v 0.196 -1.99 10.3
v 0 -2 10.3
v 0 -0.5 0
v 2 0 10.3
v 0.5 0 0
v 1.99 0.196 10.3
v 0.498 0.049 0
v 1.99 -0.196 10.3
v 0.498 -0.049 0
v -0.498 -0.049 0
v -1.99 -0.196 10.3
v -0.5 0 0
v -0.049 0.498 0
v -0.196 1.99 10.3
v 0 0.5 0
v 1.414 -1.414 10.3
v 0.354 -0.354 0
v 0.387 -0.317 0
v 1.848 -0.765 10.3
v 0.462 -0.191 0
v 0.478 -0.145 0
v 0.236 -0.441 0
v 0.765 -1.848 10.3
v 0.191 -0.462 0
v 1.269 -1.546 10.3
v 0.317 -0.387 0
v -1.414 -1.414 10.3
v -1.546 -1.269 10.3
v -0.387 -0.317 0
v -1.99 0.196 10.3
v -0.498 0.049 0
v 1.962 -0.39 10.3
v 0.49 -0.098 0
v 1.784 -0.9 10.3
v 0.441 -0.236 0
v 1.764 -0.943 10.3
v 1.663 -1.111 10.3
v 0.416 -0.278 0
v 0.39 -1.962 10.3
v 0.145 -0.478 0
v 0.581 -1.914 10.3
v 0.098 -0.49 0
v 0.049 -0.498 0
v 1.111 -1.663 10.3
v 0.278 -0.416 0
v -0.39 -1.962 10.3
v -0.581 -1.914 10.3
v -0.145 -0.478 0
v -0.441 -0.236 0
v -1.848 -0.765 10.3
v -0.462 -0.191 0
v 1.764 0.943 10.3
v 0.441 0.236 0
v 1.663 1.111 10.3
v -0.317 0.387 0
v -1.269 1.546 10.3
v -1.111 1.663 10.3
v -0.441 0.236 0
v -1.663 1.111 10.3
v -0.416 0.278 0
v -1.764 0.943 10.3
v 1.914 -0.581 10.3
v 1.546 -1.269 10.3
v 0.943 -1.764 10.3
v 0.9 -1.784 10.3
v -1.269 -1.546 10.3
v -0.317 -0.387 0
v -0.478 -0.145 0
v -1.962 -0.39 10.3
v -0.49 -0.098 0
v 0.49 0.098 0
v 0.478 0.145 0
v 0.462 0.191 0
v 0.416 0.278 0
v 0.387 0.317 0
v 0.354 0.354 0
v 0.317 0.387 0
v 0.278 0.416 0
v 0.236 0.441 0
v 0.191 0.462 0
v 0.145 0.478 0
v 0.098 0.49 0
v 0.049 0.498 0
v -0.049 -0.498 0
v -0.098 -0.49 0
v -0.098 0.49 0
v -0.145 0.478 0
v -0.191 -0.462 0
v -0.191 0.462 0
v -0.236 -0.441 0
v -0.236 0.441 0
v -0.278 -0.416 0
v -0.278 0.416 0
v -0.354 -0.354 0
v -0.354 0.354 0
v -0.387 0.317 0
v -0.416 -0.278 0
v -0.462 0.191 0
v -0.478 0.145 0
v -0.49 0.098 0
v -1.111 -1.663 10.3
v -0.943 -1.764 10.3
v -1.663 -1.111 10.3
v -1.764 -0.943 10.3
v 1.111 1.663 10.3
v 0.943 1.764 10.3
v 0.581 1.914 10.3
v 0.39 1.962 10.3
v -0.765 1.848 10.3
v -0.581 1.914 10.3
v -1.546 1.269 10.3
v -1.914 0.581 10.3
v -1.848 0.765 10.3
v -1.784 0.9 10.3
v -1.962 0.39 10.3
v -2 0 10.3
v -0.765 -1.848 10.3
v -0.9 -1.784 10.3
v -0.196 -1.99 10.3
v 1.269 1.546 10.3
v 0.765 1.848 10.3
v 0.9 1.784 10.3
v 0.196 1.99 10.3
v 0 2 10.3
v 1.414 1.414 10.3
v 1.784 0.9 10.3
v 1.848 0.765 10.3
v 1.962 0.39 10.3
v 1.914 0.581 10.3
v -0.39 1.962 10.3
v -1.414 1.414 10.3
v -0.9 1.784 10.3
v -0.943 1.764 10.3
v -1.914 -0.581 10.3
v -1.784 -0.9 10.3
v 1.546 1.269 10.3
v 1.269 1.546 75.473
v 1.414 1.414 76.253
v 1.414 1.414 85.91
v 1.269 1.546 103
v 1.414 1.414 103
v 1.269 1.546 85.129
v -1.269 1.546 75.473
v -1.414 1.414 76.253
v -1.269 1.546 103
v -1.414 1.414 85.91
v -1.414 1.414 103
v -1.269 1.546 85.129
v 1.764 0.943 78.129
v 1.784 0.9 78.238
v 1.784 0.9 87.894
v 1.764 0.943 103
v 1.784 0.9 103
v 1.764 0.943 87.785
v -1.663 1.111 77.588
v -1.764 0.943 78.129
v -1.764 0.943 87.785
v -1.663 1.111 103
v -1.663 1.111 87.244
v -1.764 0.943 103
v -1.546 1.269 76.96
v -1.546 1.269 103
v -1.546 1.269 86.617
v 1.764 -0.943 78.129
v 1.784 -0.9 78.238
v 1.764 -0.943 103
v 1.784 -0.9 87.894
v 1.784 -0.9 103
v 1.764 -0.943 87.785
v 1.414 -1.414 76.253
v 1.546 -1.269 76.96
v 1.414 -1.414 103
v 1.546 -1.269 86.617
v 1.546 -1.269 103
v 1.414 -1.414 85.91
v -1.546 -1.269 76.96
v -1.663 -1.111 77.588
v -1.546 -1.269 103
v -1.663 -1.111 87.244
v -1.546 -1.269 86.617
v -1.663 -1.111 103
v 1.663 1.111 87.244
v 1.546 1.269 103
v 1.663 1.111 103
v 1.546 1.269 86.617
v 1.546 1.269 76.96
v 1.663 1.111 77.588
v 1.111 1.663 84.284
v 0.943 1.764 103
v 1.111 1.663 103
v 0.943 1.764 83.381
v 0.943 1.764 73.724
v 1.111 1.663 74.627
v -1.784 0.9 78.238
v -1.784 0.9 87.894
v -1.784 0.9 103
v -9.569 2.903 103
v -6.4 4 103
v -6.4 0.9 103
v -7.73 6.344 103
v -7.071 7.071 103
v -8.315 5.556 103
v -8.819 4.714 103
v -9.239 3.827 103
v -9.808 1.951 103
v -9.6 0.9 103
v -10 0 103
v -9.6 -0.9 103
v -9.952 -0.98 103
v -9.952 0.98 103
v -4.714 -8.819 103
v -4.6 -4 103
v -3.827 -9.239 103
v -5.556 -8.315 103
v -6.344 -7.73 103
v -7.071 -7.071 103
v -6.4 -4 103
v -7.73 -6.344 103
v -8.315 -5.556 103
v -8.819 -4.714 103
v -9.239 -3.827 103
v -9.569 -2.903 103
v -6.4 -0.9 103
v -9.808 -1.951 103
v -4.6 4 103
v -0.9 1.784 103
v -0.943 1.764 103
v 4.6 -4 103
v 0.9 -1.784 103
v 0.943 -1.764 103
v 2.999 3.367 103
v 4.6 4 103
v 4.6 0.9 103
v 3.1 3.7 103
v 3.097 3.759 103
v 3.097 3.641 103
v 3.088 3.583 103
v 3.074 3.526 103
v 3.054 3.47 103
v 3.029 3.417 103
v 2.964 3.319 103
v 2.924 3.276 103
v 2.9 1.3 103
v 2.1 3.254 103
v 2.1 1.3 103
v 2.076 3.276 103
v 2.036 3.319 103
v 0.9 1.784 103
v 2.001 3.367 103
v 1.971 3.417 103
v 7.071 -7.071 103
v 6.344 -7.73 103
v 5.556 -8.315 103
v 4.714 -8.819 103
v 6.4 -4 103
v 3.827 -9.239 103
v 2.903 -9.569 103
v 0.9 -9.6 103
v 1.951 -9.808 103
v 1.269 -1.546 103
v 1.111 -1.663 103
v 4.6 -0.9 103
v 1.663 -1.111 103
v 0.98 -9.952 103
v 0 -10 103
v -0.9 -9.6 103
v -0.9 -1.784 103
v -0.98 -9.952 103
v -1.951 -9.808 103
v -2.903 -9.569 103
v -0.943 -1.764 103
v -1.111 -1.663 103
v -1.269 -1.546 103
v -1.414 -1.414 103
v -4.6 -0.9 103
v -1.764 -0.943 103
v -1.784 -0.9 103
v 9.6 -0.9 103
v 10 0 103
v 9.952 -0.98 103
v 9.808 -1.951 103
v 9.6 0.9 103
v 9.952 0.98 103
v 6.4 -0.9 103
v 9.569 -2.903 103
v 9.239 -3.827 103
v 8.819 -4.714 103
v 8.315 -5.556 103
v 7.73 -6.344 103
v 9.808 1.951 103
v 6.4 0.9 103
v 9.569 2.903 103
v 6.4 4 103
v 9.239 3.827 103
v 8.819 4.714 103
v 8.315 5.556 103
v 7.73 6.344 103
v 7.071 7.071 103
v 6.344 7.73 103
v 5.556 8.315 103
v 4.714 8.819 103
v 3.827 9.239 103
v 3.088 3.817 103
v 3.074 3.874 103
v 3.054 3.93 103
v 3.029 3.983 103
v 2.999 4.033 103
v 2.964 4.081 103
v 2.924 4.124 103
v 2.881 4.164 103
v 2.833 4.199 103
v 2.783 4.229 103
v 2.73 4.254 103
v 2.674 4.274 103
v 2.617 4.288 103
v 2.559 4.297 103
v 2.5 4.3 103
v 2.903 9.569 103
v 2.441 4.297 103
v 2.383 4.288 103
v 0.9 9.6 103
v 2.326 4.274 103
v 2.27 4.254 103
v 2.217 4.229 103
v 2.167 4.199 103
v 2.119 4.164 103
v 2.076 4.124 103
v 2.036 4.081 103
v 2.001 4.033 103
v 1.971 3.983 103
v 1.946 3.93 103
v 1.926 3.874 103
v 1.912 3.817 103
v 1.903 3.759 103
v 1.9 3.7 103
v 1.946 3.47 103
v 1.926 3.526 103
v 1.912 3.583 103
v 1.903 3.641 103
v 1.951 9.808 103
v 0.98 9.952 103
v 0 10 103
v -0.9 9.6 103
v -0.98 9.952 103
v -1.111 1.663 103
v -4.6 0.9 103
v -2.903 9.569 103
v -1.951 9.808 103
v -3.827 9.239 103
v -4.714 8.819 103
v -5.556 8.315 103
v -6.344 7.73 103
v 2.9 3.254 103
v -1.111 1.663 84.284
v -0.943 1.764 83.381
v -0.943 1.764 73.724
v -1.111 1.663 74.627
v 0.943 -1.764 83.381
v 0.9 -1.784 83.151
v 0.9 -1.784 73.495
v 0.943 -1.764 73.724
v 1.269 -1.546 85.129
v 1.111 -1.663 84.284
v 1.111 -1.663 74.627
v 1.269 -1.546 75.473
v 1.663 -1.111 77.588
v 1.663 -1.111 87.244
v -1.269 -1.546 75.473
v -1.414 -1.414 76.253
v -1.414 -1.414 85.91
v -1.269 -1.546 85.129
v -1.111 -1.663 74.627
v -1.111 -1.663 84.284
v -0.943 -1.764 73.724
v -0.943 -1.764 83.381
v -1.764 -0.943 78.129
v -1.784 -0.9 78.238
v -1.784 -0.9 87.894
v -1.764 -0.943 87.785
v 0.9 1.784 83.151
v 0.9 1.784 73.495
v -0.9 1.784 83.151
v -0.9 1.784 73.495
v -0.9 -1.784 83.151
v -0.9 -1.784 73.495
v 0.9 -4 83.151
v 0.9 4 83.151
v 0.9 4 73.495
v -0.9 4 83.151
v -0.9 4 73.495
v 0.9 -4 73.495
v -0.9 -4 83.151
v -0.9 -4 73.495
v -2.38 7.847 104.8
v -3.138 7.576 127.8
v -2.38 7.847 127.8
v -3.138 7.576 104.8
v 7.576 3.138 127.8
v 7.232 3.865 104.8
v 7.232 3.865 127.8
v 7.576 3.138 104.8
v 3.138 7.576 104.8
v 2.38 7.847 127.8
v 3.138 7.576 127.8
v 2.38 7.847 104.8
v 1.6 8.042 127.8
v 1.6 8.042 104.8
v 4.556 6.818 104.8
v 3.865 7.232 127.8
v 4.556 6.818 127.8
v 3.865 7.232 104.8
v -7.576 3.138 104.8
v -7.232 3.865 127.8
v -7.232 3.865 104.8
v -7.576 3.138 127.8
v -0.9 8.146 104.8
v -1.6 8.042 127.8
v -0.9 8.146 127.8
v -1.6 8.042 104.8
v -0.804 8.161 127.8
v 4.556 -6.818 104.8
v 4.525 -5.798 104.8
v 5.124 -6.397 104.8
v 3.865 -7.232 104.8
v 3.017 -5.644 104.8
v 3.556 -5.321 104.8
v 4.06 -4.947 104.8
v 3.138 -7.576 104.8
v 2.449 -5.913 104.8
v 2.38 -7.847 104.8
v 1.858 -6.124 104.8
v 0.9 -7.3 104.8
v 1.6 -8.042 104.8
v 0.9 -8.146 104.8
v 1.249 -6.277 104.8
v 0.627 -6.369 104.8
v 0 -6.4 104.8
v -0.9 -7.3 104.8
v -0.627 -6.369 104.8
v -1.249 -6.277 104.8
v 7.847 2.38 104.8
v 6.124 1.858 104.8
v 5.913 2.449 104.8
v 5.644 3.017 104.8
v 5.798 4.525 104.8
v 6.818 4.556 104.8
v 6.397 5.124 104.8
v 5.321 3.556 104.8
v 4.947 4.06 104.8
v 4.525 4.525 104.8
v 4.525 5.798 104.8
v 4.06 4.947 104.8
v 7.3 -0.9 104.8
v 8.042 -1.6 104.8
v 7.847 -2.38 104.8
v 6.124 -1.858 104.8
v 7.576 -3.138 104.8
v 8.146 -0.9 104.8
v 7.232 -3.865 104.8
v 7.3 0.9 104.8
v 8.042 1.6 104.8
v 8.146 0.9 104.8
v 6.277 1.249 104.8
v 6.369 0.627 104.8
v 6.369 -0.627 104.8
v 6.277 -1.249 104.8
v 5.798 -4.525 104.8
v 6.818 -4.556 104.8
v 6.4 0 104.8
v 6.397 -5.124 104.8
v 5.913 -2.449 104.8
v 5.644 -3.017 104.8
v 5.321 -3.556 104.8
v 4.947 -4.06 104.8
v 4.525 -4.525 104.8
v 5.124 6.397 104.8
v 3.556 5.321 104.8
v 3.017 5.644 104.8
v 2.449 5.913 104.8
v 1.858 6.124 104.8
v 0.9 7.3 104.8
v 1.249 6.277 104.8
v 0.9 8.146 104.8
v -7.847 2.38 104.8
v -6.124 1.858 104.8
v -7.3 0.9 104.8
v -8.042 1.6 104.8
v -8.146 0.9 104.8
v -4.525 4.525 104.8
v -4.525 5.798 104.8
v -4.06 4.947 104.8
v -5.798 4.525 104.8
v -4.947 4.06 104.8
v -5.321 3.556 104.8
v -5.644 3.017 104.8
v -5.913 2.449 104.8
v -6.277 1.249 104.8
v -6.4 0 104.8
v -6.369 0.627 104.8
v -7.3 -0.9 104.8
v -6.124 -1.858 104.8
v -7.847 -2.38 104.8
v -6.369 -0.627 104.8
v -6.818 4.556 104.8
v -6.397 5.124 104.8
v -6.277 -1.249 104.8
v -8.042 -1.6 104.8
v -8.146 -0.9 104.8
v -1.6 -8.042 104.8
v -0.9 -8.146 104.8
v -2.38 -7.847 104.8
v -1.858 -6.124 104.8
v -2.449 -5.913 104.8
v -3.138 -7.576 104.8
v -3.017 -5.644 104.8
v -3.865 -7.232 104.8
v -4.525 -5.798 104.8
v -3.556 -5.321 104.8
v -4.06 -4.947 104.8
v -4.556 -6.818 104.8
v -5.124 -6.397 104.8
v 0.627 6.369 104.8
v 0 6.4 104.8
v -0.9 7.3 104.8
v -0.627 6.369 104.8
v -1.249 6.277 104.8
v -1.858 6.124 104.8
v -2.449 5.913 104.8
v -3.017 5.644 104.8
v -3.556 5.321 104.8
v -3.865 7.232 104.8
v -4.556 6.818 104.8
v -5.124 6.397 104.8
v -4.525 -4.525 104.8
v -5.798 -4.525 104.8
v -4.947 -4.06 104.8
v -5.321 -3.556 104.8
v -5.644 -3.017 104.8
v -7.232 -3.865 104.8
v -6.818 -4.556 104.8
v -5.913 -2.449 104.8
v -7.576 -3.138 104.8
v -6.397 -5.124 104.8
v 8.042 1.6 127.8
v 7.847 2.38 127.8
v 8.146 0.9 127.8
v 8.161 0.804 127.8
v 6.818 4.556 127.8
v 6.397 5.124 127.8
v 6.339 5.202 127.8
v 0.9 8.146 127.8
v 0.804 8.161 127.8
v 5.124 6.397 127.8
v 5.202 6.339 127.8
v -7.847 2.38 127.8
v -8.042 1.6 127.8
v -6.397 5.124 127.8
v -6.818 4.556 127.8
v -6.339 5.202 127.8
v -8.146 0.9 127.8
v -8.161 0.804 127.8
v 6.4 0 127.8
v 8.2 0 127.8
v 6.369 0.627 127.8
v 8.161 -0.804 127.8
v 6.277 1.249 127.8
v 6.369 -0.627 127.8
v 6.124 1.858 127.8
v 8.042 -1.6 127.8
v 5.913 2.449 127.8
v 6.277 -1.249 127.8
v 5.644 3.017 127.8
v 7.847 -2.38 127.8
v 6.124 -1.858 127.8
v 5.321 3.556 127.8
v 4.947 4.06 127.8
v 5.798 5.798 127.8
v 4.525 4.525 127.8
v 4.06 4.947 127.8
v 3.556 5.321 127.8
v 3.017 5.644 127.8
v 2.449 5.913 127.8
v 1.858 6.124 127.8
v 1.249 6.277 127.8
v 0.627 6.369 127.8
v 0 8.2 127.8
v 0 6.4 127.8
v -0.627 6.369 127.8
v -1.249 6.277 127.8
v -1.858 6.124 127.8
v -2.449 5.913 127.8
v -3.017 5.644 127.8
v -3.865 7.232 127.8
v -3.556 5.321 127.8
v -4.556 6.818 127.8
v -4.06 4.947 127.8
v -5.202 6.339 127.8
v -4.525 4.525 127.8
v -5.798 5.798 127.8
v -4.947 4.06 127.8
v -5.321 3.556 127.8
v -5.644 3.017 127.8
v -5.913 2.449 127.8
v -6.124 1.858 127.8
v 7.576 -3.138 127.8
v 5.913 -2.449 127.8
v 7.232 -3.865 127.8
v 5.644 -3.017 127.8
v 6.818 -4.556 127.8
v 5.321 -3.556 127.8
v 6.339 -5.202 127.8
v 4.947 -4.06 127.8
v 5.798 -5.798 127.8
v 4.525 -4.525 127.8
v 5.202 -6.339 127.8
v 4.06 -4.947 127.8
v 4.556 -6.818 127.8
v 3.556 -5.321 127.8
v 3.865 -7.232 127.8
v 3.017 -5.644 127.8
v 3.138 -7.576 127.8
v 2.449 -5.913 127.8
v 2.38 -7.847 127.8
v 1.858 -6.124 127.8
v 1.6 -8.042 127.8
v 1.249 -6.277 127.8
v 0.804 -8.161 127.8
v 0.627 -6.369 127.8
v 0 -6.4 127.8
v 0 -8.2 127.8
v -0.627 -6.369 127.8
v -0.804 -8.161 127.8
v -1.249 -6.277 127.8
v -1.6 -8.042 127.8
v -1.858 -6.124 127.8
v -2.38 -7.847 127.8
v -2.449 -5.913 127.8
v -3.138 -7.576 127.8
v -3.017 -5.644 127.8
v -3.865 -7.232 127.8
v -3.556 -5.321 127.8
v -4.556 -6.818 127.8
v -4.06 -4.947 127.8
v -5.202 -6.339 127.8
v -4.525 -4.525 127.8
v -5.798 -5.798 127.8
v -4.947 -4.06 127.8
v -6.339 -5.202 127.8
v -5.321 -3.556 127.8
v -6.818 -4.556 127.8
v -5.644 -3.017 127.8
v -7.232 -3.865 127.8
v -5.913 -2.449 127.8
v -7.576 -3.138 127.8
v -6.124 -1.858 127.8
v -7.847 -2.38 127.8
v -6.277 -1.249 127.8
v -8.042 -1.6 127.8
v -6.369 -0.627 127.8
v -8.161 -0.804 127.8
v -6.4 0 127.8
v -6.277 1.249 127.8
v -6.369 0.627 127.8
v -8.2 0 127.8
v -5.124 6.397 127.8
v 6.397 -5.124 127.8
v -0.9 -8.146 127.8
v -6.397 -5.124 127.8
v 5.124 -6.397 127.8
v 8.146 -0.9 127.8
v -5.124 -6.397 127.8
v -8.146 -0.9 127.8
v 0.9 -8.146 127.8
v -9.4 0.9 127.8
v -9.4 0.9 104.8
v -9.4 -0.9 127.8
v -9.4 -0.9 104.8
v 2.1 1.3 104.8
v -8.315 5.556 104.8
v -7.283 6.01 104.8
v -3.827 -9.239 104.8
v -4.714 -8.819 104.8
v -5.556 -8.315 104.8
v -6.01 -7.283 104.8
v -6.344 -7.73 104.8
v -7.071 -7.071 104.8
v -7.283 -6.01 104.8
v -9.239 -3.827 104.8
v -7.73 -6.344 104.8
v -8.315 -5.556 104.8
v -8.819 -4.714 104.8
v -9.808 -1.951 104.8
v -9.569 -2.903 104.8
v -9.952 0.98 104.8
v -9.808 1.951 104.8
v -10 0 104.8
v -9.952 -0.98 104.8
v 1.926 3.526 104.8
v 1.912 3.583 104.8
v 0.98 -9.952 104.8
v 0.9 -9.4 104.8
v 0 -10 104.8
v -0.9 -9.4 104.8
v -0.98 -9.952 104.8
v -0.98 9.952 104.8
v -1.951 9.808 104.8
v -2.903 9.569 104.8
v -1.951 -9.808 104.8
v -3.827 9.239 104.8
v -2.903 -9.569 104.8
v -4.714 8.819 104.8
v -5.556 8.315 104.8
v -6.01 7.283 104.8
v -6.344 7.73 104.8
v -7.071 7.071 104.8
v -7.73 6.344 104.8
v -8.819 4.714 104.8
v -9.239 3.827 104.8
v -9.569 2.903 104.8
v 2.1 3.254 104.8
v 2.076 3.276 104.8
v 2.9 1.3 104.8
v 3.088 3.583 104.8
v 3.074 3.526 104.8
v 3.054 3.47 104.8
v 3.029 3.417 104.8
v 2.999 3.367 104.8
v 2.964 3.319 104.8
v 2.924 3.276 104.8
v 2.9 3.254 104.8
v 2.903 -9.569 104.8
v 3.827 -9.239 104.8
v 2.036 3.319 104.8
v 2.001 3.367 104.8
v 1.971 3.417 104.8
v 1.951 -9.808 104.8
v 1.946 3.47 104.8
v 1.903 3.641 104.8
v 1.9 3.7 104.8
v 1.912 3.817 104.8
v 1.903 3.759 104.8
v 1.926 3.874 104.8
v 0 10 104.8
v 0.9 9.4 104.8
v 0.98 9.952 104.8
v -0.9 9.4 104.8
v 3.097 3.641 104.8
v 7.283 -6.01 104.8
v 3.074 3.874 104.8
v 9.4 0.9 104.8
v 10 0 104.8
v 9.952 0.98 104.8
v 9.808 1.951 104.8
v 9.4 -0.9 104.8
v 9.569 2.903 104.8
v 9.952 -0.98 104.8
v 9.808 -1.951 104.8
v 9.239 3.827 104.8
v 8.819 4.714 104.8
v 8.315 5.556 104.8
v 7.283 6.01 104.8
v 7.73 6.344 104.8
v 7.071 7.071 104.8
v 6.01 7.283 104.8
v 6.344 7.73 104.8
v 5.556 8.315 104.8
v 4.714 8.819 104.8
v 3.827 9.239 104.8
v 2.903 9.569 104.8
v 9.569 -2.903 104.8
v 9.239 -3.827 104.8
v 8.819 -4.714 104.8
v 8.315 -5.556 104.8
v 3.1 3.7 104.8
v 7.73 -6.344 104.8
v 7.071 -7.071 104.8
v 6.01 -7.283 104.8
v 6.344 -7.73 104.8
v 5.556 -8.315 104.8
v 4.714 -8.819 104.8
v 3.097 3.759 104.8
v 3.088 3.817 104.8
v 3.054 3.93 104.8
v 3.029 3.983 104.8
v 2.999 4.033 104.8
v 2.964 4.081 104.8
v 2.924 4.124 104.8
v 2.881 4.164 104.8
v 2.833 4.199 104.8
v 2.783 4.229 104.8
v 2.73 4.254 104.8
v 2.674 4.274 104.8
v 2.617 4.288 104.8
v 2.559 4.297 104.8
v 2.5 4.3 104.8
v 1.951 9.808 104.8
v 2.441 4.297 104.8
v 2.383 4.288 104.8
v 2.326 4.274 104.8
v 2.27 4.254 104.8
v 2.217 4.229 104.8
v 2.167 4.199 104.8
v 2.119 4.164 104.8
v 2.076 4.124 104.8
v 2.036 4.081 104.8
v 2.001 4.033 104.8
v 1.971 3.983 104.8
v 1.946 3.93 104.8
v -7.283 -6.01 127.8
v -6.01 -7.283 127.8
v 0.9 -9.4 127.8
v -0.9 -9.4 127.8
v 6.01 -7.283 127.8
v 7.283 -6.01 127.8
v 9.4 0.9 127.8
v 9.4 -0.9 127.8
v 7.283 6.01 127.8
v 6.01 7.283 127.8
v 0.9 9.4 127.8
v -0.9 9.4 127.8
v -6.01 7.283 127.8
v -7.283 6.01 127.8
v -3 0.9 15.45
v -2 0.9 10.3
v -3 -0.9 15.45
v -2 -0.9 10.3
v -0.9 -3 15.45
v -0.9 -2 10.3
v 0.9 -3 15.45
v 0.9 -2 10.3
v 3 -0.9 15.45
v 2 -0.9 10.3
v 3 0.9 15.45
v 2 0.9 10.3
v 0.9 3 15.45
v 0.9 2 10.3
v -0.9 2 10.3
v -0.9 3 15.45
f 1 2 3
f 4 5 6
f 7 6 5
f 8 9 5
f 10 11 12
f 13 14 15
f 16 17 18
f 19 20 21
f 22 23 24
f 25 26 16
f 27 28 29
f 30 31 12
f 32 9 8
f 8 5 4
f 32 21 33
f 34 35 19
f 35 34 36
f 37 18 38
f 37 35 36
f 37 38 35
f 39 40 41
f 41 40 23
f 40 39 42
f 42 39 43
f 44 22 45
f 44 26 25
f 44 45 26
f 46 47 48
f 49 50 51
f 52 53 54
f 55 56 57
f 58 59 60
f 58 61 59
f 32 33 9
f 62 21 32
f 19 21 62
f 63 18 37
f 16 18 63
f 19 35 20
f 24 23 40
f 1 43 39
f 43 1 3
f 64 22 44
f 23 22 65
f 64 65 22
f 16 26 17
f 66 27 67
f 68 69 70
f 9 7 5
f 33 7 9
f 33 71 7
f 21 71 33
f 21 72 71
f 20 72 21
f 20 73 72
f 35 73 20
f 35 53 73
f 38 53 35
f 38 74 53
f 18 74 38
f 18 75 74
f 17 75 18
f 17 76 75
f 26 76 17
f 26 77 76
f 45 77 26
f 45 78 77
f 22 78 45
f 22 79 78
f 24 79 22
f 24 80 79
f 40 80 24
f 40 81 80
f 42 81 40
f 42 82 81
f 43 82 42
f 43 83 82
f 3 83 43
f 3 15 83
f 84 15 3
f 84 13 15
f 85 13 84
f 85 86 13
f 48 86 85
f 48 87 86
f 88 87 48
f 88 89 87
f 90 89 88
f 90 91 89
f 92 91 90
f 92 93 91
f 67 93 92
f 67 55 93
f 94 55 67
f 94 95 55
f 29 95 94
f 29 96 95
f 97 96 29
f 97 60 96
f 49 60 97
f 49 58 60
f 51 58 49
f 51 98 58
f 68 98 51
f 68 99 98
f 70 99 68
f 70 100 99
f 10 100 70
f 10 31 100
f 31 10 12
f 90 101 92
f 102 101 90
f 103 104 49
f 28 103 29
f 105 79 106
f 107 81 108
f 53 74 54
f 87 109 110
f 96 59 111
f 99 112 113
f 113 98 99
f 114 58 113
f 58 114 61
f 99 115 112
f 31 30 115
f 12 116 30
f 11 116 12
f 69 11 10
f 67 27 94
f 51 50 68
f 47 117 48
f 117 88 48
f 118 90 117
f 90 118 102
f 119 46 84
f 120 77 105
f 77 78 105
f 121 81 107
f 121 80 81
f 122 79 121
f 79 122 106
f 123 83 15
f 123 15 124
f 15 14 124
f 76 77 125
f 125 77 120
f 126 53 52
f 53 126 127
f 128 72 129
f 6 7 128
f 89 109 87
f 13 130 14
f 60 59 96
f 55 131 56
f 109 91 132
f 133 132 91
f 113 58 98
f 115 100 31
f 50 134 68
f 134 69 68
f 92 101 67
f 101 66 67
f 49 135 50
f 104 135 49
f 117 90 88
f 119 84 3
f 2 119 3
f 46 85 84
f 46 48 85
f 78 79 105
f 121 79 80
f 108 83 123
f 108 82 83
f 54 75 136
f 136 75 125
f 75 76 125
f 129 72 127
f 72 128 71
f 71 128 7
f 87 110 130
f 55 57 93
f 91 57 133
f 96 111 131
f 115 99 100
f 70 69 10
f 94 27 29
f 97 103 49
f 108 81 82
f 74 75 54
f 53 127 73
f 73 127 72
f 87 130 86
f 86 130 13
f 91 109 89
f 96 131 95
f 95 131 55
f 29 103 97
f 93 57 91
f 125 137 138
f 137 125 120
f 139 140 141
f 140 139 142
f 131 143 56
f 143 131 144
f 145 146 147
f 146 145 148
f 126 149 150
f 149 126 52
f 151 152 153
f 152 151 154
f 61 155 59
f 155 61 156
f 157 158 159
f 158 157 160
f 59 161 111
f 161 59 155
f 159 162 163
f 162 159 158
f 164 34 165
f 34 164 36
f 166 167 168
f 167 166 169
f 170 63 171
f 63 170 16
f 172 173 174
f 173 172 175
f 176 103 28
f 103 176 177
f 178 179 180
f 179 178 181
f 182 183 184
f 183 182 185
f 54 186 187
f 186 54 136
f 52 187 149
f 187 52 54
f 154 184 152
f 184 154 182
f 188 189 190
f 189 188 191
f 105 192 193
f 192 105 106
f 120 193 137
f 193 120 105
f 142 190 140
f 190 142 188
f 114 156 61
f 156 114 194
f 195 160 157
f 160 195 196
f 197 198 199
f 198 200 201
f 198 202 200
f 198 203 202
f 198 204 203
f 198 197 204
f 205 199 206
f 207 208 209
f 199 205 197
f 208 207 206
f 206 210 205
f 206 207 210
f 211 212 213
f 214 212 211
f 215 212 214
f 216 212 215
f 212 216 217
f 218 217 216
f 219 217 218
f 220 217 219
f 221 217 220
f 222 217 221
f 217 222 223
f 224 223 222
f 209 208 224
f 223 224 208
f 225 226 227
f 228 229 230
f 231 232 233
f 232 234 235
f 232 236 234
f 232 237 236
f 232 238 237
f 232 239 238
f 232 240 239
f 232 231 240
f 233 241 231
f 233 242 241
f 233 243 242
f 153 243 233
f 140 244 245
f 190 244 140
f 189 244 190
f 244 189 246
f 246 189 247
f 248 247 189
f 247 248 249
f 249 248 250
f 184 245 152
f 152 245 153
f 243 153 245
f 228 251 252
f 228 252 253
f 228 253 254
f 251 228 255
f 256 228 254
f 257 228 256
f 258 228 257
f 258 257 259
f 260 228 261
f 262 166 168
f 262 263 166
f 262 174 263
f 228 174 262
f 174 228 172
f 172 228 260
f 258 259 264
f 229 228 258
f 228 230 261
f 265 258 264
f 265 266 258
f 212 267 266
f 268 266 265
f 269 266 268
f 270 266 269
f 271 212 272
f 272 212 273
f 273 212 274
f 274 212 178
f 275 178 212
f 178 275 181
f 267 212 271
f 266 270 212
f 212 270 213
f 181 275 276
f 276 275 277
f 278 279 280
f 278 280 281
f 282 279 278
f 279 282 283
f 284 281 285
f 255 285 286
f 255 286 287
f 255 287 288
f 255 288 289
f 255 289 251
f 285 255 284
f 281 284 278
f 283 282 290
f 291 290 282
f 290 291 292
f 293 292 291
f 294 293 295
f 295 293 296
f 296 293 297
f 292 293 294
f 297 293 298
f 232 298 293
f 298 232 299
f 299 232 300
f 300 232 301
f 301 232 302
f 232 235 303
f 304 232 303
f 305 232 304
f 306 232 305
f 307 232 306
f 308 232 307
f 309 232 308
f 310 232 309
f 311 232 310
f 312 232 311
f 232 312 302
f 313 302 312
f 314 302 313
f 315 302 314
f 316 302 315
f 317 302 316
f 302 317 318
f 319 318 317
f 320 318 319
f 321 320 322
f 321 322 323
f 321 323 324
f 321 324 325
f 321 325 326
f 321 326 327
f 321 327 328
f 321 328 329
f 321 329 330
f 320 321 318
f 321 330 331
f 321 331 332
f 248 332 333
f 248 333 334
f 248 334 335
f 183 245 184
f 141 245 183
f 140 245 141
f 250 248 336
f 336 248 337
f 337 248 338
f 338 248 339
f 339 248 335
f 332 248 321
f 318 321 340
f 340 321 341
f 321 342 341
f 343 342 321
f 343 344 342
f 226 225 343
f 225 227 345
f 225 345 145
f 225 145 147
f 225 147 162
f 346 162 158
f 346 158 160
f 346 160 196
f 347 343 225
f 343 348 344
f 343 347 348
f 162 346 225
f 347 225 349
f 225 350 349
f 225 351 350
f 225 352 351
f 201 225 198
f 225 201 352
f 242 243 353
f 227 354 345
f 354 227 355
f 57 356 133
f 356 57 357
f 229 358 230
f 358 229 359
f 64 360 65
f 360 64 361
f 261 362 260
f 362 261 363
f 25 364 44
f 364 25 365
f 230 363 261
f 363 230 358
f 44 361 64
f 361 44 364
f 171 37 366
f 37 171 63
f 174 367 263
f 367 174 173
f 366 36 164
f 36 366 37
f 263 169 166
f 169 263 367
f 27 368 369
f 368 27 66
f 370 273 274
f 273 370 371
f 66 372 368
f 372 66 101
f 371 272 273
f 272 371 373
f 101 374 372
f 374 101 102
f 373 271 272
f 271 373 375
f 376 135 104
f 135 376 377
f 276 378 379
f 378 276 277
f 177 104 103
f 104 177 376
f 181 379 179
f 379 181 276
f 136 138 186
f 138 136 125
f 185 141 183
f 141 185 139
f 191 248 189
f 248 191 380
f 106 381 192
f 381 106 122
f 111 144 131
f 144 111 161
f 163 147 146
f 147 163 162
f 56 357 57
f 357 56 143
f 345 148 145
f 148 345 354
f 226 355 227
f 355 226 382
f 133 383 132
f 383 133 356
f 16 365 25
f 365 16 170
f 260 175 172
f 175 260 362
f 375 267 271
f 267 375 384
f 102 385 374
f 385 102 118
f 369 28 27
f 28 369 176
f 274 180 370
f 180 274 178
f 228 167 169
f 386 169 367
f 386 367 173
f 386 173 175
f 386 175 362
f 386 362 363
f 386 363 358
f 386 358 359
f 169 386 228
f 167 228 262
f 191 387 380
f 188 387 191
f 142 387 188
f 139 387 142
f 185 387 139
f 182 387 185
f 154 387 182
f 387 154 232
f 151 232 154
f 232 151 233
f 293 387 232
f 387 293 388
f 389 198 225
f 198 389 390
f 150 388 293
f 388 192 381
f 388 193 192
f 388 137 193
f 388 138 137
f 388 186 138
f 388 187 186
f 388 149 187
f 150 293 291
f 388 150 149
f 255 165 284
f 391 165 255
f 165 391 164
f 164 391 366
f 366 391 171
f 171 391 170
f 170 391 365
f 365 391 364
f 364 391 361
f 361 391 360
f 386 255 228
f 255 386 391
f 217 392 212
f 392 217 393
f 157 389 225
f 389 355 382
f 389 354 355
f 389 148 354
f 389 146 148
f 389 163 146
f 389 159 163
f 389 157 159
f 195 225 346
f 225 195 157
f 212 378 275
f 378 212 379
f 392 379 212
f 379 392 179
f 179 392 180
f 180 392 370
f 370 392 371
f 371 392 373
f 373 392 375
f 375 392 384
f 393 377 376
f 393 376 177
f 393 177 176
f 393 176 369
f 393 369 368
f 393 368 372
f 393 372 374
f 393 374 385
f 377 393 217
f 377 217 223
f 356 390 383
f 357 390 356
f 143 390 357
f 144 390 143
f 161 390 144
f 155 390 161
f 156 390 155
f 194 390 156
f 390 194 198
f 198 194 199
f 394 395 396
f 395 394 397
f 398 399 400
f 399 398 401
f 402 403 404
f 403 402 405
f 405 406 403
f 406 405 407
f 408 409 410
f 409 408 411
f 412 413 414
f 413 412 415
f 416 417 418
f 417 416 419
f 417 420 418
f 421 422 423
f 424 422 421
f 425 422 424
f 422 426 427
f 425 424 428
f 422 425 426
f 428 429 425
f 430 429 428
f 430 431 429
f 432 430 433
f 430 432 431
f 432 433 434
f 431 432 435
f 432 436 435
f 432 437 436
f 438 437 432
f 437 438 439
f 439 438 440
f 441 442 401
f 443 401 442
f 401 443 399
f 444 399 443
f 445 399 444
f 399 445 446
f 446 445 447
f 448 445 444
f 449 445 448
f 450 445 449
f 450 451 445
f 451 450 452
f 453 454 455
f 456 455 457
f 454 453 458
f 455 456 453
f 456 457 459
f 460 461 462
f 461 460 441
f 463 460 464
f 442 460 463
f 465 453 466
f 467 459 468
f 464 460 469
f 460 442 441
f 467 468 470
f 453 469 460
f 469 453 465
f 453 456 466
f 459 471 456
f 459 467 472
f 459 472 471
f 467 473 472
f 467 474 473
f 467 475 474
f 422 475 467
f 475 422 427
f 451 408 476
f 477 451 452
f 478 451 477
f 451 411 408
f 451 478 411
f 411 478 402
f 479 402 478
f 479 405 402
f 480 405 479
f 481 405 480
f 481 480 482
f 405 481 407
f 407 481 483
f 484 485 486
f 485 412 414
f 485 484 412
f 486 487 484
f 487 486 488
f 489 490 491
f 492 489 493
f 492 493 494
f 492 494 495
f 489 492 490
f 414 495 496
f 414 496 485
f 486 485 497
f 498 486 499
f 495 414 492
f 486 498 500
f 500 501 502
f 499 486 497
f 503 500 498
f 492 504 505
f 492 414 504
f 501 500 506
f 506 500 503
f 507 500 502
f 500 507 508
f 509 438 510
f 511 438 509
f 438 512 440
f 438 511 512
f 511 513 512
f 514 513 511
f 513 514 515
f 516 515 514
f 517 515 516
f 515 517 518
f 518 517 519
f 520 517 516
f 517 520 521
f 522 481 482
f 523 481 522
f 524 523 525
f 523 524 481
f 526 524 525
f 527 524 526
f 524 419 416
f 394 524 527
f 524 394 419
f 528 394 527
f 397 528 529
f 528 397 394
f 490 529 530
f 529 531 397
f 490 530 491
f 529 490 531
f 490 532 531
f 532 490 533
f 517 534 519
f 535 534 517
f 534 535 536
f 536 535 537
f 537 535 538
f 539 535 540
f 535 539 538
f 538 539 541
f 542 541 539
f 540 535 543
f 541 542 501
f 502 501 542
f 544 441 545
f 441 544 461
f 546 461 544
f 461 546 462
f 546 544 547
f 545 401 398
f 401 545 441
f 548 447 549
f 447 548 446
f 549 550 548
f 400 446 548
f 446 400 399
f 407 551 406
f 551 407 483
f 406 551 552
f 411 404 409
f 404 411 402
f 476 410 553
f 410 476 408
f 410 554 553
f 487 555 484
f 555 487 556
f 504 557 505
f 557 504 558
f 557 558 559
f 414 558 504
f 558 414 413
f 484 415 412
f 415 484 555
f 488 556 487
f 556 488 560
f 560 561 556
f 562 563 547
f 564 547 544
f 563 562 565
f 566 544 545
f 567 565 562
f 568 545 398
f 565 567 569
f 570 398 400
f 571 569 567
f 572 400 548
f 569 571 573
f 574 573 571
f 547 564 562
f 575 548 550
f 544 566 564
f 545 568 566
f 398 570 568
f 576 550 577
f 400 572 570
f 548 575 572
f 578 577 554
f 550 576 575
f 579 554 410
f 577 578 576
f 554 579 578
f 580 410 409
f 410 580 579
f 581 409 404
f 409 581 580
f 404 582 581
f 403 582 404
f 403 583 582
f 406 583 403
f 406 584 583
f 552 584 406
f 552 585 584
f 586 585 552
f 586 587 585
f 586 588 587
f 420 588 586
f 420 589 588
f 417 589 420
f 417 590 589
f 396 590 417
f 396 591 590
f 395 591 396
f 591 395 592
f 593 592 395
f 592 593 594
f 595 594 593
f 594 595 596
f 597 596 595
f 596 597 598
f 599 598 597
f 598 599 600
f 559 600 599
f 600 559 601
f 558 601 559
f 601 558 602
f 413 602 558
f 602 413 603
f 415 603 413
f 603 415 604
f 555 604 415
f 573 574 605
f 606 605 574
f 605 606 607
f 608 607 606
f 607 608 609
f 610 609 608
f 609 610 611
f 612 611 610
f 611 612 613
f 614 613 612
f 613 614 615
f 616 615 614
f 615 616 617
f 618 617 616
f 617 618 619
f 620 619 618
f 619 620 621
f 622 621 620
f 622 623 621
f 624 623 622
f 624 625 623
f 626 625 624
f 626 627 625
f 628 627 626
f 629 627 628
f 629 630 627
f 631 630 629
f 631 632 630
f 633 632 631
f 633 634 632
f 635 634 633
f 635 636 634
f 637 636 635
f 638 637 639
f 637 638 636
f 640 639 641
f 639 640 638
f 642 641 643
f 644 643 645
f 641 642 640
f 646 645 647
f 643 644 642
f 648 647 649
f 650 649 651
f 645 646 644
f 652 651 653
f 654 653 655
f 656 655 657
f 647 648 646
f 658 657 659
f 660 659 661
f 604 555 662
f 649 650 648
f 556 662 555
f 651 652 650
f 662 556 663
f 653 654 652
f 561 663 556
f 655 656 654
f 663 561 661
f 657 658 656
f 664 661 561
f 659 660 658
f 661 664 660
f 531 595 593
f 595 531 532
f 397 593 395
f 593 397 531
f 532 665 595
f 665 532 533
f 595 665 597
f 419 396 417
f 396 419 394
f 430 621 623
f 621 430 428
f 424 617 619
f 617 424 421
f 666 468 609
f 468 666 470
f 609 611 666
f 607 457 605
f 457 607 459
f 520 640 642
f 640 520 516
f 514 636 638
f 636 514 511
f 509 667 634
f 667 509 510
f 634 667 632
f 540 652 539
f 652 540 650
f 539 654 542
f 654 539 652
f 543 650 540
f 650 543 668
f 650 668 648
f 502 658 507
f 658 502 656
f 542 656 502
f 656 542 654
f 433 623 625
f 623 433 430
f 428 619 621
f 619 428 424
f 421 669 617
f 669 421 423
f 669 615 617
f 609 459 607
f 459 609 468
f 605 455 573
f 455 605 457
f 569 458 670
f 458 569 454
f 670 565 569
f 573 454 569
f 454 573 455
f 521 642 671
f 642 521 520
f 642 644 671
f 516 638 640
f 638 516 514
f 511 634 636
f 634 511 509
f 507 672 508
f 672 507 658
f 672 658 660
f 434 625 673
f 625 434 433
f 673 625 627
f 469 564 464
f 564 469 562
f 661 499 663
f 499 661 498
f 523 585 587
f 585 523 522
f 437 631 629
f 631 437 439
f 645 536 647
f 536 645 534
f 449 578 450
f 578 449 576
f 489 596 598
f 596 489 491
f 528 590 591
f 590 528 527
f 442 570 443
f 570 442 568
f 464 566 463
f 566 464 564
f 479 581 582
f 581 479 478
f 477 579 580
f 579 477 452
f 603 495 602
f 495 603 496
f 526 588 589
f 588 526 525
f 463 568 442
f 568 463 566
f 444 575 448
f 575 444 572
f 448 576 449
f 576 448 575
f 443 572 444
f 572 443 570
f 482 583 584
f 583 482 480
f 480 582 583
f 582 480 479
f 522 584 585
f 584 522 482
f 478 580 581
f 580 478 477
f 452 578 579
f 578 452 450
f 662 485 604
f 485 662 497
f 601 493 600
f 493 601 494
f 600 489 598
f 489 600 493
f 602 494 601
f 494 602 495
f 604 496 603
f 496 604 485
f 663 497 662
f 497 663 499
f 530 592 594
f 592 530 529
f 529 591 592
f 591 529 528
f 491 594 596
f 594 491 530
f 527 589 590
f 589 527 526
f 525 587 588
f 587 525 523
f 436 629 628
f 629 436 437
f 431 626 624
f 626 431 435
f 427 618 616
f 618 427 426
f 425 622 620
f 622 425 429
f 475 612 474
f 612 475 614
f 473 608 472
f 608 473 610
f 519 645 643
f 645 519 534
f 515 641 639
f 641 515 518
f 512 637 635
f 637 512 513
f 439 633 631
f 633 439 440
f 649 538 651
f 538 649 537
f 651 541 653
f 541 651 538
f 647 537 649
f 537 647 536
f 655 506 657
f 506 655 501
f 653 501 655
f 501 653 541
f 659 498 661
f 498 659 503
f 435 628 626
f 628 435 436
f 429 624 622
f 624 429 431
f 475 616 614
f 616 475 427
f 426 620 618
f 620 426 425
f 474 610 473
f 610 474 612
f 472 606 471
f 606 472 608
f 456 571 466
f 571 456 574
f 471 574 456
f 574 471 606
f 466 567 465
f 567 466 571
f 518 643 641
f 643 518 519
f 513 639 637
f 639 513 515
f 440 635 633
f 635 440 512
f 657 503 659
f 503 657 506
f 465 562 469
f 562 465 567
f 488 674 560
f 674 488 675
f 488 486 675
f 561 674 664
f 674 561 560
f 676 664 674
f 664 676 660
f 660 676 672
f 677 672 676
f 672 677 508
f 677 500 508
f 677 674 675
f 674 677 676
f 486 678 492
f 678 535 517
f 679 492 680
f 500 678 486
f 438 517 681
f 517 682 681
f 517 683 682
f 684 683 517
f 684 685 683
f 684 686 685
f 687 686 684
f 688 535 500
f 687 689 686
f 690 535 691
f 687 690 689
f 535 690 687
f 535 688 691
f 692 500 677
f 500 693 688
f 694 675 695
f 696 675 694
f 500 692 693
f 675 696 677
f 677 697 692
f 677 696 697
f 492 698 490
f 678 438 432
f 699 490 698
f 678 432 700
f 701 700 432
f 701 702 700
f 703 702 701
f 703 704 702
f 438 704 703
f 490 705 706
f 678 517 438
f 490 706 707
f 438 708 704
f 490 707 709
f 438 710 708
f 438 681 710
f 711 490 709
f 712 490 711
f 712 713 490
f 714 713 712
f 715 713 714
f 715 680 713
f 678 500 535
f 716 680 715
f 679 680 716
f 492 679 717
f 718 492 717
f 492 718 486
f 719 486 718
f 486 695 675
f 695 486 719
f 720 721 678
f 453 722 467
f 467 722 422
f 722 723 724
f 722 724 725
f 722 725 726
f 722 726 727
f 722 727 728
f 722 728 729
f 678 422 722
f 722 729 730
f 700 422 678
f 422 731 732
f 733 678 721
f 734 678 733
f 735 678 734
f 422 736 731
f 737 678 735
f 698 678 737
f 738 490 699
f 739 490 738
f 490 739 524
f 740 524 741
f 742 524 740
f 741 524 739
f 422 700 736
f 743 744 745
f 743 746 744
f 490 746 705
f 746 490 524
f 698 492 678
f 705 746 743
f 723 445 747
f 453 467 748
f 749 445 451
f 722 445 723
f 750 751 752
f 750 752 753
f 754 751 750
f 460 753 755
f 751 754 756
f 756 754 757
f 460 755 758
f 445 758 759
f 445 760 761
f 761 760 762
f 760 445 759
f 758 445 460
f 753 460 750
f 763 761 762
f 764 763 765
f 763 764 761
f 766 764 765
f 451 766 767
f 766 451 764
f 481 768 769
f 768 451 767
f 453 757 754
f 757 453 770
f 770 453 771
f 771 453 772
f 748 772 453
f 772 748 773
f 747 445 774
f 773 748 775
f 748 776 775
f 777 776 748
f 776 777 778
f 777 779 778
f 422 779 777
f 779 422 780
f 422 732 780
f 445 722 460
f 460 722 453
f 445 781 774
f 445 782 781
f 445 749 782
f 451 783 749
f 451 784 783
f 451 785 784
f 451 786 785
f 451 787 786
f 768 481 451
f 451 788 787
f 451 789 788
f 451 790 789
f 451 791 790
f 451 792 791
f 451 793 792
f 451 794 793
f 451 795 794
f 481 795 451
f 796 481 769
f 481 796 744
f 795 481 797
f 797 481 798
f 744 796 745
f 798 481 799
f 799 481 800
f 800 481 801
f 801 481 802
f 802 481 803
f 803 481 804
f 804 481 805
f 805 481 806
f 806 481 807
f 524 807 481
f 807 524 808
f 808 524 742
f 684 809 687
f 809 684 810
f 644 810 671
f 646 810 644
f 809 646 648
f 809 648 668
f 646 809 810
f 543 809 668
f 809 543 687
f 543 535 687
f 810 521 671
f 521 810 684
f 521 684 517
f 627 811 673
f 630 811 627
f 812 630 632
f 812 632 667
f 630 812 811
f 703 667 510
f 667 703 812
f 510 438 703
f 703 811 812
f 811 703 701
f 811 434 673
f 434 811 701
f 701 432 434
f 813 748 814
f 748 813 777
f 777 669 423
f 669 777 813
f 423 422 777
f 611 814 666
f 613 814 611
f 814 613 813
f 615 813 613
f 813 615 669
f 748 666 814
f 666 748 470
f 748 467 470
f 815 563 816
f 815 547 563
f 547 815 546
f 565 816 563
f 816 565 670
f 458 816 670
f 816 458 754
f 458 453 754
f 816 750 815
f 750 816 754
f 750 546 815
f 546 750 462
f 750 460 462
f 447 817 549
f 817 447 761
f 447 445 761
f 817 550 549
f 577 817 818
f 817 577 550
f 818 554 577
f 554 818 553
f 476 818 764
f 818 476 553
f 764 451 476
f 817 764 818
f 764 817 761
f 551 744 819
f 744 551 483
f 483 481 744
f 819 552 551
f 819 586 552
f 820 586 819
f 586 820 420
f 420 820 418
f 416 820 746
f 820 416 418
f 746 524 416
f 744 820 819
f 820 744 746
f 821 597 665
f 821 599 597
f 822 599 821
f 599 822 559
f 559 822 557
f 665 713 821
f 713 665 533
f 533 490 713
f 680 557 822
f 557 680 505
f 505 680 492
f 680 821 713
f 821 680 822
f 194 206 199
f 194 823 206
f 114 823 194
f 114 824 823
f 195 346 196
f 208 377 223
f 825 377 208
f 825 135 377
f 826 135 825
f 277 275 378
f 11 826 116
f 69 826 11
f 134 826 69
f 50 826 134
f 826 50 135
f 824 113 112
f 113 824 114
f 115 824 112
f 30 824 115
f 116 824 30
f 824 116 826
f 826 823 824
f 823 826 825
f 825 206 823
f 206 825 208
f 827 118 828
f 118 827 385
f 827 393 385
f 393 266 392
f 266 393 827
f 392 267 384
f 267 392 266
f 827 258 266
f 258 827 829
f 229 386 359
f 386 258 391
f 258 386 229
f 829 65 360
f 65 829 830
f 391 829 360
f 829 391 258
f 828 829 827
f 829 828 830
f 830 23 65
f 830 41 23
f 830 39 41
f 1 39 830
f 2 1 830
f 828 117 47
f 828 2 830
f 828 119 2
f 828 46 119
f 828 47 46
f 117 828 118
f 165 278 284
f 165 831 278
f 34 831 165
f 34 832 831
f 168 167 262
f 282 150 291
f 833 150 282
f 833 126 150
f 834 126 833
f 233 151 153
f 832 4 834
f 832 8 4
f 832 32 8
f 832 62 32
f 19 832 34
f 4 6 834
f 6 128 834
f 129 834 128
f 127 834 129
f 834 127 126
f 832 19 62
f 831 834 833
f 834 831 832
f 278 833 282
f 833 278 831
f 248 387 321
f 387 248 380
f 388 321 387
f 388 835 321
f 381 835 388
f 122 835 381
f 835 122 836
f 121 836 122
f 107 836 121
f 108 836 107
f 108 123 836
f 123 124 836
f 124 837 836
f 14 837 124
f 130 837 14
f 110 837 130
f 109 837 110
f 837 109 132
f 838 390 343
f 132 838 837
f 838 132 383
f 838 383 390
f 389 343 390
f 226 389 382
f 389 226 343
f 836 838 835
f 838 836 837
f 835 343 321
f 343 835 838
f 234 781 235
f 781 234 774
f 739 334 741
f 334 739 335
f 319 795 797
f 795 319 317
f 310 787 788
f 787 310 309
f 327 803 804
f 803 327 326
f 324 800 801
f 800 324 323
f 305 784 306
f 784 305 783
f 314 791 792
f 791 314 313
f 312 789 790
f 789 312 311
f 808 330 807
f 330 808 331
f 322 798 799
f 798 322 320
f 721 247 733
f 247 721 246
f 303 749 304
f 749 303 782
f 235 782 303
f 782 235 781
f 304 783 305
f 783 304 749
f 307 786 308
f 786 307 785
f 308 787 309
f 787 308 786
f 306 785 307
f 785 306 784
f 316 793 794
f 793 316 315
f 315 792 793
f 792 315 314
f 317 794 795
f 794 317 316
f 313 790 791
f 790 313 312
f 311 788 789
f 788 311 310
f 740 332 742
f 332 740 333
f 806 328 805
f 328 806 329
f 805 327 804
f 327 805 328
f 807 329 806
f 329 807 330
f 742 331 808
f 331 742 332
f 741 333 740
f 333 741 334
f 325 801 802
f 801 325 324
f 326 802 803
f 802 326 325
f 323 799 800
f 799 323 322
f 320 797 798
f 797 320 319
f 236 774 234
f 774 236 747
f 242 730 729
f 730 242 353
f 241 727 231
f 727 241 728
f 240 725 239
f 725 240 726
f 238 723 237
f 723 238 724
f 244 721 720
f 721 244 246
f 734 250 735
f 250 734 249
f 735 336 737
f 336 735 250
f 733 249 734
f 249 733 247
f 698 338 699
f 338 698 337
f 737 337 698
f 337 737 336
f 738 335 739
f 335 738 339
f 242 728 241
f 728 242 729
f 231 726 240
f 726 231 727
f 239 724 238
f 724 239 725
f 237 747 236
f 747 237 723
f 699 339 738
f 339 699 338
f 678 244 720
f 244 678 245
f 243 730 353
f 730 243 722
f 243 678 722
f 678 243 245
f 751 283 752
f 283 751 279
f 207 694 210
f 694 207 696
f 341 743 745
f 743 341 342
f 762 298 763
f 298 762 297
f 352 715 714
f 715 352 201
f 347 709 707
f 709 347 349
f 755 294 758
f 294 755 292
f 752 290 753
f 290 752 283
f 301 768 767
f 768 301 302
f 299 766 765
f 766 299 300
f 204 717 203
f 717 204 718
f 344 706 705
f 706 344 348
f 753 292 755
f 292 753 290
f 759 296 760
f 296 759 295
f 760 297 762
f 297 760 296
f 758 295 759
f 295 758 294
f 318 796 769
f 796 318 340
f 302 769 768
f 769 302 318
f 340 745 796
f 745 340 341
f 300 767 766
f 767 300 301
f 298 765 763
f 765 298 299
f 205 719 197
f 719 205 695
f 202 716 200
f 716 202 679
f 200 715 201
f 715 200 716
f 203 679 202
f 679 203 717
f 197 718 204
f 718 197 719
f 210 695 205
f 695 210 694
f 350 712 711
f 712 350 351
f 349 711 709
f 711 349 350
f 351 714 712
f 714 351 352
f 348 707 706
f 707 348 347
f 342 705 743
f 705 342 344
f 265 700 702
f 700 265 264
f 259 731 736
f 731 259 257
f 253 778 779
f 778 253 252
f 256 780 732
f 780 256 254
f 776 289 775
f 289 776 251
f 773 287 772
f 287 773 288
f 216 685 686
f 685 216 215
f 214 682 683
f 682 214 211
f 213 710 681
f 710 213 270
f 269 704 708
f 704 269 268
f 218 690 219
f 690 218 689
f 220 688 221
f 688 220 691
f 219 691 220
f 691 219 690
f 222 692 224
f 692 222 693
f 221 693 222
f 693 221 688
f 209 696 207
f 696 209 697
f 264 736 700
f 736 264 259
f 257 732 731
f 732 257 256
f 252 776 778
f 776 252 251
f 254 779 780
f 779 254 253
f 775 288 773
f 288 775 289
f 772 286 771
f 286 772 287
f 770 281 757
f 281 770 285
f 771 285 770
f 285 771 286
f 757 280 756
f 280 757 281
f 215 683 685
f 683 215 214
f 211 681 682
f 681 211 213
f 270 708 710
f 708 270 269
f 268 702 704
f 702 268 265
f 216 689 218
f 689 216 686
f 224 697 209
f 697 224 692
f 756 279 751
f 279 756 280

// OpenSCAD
//This scad file carries all the variables needed to adjust it to whatver fits your lawn lights. adjust as needed.

facets = 64;
$fn = $preview ? 8 : facets;
wallThickness = 1.8;

//main stem variables
LengthOfSpike = 103;
pieceRatio = 0.90;
cylinderDiameter = 4;

//top plug values, this will be what fits into the garden light
ringDiameter = 12.8;
holdingCylinderHeight = 23; 
holdingCylinderDiameter = 20;
numberOfRibs = 8;
ribsThickness = 1.2;

cylinderRadius = cylinderDiameter/2;
ringRadius = ringDiameter/2;

module mainCylinder() {
	cylinder(h=LengthOfSpike*(1-pieceRatio), r1=0.5, r2=cylinderRadius);
	translate([0,0,LengthOfSpike*(1-pieceRatio)]) cylinder(h=LengthOfSpike*pieceRatio, d=cylinderDiameter);
};

module coneWingsA() {
	pointA = [LengthOfSpike*(1-pieceRatio), cylinderRadius];
	pointB = [LengthOfSpike*(1-pieceRatio), cylinderRadius-1];
	pointC = [LengthOfSpike, cylinderRadius-1];
	pointD = [LengthOfSpike, ringDiameter * 0.75];
	pointE = [LengthOfSpike*((1-pieceRatio)*1.5), cylinderRadius*1.5];
	for (i = [0:3]) {
		rotate([90,-90,i*90])
			linear_extrude(height=wallThickness,center=true)
				polygon([pointA,pointB,pointC, pointD, pointE]);
	}
};

module coneWingsB() {
	m = LengthOfSpike*(1/3)/ringRadius;
	pointA = [0, LengthOfSpike*(2/3)];
	pointB = [0,m*(wallThickness - ringRadius)+LengthOfSpike];
	pointC = [ringRadius - wallThickness, LengthOfSpike];
	pointD = [ringRadius, LengthOfSpike];
	for (i = [0:1]) {
		rotate([90,0,i*180])
			linear_extrude(height= cylinderDiameter*2, center= true)
				polygon([pointA, pointB, pointC, pointD]);
	}			
}

module ring() {
	translate([0,0,LengthOfSpike])
		difference() {
			cylinder(h=wallThickness, d=holdingCylinderDiameter);
			// drainage hole
			translate([holdingCylinderDiameter/2/4, holdingCylinderDiameter/2/4, 0])
				union() {
					translate([0, 1.2, 0]) cylinder(h=wallThickness*2, d=1.2, center=true);
					translate([0, 0, 0]) cube([0.8, 2.4, wallThickness * 2], center=true);
				}
		}
};

module holdingCylinder() {
	// holdingCyl =
	// 	concat(
	// 		[for (i = [0:$fn]) [sin((i/$fn)*360)* ringDiameter,cos((i/$fn)*360)* ringDiameter]],
	// 		[for (i = [0:$fn]) [sin((i/$fn)*360)*(ringDiameter-wallThickness),cos((i/$fn)*360)*(ringDiameter-wallThickness)]]);
	// translate([0,0,LengthOfSpike+wallThickness])
	// 	linear_extrude(height = holdingCylinderHeight)
	// 		polygon(holdingCyl);

	translate([0,0,LengthOfSpike+wallThickness])
		difference() {
			cylinder(h=holdingCylinderHeight, d=ringDiameter+(wallThickness*2));
			cylinder(h=holdingCylinderHeight+0.2, d=ringDiameter);
		}
	pointA = [holdingCylinderHeight,ringRadius+wallThickness/2];
	pointB = [holdingCylinderHeight,ringRadius+wallThickness+ribsThickness];
	pointC = [0,ringRadius+wallThickness+ribsThickness];
	pointD = [0,ringRadius+wallThickness/2];
	for (i = [0:numberOfRibs-1]) {
		translate([0,0,LengthOfSpike+wallThickness])
			rotate([90,-90,i*(360/numberOfRibs)])
				linear_extrude(height = wallThickness,center = true)
					polygon([pointA, pointB, pointC, pointD]);
	}
}

module light_spike() {
	mainCylinder();
	coneWingsA();
	coneWingsB();
	ring();
	holdingCylinder();
}

light_spike();

if ($preview) {
	translate([0, 0, 150]) color("red") cube([12.5, 0.4, 300], center=true);
	translate([0, 0, 150]) color("blue") cube([0.4, 12.5, 300], center=true);
}
